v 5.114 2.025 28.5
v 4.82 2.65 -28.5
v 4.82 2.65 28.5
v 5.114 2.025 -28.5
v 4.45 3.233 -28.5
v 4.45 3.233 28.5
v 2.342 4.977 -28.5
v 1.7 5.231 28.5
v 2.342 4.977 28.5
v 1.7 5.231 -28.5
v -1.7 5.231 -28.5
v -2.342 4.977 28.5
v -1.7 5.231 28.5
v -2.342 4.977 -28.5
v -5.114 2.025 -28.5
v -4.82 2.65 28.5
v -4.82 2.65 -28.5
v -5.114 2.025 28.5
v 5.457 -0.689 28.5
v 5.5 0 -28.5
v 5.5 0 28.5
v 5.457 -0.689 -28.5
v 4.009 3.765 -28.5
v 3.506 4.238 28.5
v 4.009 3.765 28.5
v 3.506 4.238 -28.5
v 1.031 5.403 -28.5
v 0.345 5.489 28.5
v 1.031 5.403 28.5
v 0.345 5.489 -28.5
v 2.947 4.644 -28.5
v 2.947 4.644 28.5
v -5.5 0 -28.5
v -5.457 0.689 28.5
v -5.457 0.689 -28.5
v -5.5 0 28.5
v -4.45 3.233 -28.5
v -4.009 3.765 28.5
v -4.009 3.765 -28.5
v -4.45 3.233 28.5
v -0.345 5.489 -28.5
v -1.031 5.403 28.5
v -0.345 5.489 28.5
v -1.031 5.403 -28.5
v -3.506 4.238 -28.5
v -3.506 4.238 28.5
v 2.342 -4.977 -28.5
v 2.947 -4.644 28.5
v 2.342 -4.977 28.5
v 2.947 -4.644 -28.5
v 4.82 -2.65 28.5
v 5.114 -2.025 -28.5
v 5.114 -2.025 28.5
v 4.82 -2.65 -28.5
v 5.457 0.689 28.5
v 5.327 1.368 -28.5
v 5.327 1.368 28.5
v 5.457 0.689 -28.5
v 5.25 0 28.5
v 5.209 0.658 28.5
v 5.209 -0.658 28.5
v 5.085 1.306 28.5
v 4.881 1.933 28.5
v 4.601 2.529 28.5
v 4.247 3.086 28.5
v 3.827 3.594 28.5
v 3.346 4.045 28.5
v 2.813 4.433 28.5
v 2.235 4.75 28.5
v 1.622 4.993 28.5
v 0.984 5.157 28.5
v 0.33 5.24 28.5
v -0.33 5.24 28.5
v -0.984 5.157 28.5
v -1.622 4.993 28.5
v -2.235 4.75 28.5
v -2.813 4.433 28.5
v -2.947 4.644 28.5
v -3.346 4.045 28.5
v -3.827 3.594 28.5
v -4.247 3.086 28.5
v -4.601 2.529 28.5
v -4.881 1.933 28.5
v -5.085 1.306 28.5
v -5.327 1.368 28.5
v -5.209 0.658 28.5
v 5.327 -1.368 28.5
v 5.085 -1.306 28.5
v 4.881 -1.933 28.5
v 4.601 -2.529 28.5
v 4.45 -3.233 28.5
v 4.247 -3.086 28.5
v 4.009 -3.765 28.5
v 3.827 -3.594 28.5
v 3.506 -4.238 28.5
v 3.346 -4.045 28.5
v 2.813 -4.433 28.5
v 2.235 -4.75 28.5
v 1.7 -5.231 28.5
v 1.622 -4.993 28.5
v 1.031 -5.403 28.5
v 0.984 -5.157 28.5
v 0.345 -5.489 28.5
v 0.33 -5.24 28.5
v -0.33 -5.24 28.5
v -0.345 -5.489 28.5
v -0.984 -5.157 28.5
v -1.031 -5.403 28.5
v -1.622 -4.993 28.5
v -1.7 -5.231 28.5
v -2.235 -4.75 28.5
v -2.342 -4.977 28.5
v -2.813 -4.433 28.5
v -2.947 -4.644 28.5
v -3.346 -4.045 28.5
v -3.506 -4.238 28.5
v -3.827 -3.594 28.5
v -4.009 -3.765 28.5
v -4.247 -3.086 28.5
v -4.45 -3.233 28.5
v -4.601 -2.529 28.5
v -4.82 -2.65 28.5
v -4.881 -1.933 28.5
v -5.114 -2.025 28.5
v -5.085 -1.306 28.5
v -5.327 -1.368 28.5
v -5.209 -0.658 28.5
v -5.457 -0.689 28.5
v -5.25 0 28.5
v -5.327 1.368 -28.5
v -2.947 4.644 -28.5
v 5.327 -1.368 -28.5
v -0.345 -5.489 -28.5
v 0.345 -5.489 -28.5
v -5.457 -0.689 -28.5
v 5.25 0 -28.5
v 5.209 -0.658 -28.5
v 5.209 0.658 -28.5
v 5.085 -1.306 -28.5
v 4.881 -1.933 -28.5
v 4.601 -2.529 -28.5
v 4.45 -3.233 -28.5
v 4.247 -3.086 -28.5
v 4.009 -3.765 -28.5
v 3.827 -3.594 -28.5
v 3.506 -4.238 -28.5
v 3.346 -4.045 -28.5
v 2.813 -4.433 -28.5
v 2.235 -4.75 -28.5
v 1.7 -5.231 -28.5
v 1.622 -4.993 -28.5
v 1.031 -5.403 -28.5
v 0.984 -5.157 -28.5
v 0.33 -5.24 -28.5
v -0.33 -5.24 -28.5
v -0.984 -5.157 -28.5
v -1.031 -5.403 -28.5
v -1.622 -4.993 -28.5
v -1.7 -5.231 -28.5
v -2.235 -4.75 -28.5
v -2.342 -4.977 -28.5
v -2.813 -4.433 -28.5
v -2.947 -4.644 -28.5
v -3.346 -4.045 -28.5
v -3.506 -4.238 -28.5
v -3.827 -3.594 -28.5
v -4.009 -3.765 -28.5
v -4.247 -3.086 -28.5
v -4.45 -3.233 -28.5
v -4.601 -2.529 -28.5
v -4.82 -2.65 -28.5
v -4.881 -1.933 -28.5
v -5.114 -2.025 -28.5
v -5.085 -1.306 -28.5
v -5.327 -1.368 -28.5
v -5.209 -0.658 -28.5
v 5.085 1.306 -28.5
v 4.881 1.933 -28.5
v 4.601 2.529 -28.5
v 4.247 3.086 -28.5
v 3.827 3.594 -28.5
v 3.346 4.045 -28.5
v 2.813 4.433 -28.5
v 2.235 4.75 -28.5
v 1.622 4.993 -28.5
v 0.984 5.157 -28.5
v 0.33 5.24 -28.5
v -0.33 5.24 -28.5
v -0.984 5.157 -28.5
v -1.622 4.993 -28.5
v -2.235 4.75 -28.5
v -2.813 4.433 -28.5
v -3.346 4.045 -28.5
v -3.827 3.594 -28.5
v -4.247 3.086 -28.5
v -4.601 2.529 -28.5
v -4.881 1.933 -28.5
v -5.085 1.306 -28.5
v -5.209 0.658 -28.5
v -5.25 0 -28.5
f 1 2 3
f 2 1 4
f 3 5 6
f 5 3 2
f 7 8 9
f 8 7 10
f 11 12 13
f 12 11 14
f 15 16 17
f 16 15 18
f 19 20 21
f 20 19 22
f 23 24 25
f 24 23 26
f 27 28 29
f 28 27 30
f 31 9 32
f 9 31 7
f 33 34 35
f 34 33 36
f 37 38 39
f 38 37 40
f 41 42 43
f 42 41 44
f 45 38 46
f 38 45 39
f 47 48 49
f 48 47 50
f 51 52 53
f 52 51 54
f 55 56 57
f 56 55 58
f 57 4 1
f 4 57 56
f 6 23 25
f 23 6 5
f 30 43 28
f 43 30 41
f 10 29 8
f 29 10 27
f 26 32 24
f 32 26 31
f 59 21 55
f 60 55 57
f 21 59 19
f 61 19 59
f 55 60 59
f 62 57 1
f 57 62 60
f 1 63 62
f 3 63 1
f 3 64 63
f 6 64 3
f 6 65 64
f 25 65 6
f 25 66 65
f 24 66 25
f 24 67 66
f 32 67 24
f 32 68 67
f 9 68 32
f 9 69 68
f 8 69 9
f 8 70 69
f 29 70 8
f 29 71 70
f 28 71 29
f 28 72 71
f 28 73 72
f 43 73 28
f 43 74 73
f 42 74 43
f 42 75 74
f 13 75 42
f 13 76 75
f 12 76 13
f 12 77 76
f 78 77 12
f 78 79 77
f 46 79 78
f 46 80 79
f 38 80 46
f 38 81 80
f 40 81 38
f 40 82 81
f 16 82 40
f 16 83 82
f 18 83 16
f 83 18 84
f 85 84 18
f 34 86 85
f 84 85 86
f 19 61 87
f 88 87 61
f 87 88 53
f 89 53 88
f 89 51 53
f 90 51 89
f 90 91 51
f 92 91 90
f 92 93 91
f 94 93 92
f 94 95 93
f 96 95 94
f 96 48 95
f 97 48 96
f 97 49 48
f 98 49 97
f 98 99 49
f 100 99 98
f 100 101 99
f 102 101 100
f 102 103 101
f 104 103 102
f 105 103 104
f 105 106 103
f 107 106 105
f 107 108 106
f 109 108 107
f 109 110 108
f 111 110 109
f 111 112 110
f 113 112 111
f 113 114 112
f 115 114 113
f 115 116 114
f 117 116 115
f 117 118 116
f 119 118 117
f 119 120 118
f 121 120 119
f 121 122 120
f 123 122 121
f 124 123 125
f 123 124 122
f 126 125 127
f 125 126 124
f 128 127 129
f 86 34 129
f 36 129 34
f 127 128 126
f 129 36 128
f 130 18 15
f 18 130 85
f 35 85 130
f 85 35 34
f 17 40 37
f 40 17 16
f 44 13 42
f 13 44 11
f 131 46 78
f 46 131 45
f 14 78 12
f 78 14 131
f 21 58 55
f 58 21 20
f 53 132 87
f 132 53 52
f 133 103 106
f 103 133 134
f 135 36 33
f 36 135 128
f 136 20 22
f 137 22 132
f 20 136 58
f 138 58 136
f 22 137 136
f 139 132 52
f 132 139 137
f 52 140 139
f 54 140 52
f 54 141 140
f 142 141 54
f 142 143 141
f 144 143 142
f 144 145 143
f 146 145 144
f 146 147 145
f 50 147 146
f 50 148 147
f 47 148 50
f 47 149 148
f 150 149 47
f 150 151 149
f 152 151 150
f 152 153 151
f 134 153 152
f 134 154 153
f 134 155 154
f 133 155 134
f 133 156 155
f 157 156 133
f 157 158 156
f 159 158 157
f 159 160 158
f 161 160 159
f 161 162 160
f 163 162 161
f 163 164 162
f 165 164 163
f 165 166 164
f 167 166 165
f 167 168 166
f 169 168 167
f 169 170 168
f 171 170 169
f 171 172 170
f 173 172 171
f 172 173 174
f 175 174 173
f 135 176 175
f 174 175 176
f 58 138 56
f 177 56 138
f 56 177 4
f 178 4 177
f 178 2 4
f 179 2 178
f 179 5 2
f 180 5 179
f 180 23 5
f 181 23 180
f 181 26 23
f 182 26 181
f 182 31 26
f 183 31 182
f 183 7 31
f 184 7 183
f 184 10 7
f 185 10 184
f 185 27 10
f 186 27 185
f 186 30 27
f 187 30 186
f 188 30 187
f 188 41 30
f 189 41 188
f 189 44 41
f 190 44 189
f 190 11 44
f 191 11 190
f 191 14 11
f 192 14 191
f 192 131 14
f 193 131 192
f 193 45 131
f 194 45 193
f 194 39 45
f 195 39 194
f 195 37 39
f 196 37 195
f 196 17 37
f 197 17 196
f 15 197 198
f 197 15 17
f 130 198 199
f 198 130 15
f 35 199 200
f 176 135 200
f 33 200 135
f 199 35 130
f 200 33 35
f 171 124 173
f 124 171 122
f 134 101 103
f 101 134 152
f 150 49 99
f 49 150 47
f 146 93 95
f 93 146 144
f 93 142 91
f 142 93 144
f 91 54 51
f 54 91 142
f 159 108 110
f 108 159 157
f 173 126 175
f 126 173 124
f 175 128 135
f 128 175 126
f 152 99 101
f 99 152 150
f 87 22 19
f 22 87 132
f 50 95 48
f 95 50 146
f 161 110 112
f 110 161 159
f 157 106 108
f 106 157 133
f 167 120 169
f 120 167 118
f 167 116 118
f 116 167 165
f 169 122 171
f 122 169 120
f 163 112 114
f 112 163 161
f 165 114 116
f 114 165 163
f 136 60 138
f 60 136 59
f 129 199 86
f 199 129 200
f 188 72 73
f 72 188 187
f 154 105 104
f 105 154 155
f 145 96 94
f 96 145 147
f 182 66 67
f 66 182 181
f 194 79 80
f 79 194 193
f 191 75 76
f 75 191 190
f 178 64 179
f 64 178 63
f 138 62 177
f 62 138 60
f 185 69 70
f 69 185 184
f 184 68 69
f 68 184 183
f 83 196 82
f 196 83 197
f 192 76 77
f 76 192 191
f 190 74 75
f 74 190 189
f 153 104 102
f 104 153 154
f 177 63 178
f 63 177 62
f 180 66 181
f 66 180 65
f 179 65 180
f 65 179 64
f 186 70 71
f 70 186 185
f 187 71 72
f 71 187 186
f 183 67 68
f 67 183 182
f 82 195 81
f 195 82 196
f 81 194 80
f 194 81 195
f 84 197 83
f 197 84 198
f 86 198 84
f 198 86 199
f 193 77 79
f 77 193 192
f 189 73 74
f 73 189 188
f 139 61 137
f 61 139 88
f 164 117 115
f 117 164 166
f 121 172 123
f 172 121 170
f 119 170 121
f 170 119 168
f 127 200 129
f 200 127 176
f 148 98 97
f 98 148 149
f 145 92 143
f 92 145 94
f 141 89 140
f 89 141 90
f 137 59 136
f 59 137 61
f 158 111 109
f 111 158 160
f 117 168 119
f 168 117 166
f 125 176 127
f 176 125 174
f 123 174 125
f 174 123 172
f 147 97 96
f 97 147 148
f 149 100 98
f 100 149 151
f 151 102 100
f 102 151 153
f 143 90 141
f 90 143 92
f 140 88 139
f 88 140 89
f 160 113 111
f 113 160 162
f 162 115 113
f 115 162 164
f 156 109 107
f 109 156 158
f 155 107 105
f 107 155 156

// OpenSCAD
$fn = 50;


difference() {
	union() {
		translate(v = [0, 0, -28.5000000000]) {
			cylinder(h = 57, r = 5.5000000000);
		}
	}
	union() {
		translate(v = [0, 0, -100.0000000000]) {
			cylinder(h = 200, r = 5.2500000000);
		}
	}
}
